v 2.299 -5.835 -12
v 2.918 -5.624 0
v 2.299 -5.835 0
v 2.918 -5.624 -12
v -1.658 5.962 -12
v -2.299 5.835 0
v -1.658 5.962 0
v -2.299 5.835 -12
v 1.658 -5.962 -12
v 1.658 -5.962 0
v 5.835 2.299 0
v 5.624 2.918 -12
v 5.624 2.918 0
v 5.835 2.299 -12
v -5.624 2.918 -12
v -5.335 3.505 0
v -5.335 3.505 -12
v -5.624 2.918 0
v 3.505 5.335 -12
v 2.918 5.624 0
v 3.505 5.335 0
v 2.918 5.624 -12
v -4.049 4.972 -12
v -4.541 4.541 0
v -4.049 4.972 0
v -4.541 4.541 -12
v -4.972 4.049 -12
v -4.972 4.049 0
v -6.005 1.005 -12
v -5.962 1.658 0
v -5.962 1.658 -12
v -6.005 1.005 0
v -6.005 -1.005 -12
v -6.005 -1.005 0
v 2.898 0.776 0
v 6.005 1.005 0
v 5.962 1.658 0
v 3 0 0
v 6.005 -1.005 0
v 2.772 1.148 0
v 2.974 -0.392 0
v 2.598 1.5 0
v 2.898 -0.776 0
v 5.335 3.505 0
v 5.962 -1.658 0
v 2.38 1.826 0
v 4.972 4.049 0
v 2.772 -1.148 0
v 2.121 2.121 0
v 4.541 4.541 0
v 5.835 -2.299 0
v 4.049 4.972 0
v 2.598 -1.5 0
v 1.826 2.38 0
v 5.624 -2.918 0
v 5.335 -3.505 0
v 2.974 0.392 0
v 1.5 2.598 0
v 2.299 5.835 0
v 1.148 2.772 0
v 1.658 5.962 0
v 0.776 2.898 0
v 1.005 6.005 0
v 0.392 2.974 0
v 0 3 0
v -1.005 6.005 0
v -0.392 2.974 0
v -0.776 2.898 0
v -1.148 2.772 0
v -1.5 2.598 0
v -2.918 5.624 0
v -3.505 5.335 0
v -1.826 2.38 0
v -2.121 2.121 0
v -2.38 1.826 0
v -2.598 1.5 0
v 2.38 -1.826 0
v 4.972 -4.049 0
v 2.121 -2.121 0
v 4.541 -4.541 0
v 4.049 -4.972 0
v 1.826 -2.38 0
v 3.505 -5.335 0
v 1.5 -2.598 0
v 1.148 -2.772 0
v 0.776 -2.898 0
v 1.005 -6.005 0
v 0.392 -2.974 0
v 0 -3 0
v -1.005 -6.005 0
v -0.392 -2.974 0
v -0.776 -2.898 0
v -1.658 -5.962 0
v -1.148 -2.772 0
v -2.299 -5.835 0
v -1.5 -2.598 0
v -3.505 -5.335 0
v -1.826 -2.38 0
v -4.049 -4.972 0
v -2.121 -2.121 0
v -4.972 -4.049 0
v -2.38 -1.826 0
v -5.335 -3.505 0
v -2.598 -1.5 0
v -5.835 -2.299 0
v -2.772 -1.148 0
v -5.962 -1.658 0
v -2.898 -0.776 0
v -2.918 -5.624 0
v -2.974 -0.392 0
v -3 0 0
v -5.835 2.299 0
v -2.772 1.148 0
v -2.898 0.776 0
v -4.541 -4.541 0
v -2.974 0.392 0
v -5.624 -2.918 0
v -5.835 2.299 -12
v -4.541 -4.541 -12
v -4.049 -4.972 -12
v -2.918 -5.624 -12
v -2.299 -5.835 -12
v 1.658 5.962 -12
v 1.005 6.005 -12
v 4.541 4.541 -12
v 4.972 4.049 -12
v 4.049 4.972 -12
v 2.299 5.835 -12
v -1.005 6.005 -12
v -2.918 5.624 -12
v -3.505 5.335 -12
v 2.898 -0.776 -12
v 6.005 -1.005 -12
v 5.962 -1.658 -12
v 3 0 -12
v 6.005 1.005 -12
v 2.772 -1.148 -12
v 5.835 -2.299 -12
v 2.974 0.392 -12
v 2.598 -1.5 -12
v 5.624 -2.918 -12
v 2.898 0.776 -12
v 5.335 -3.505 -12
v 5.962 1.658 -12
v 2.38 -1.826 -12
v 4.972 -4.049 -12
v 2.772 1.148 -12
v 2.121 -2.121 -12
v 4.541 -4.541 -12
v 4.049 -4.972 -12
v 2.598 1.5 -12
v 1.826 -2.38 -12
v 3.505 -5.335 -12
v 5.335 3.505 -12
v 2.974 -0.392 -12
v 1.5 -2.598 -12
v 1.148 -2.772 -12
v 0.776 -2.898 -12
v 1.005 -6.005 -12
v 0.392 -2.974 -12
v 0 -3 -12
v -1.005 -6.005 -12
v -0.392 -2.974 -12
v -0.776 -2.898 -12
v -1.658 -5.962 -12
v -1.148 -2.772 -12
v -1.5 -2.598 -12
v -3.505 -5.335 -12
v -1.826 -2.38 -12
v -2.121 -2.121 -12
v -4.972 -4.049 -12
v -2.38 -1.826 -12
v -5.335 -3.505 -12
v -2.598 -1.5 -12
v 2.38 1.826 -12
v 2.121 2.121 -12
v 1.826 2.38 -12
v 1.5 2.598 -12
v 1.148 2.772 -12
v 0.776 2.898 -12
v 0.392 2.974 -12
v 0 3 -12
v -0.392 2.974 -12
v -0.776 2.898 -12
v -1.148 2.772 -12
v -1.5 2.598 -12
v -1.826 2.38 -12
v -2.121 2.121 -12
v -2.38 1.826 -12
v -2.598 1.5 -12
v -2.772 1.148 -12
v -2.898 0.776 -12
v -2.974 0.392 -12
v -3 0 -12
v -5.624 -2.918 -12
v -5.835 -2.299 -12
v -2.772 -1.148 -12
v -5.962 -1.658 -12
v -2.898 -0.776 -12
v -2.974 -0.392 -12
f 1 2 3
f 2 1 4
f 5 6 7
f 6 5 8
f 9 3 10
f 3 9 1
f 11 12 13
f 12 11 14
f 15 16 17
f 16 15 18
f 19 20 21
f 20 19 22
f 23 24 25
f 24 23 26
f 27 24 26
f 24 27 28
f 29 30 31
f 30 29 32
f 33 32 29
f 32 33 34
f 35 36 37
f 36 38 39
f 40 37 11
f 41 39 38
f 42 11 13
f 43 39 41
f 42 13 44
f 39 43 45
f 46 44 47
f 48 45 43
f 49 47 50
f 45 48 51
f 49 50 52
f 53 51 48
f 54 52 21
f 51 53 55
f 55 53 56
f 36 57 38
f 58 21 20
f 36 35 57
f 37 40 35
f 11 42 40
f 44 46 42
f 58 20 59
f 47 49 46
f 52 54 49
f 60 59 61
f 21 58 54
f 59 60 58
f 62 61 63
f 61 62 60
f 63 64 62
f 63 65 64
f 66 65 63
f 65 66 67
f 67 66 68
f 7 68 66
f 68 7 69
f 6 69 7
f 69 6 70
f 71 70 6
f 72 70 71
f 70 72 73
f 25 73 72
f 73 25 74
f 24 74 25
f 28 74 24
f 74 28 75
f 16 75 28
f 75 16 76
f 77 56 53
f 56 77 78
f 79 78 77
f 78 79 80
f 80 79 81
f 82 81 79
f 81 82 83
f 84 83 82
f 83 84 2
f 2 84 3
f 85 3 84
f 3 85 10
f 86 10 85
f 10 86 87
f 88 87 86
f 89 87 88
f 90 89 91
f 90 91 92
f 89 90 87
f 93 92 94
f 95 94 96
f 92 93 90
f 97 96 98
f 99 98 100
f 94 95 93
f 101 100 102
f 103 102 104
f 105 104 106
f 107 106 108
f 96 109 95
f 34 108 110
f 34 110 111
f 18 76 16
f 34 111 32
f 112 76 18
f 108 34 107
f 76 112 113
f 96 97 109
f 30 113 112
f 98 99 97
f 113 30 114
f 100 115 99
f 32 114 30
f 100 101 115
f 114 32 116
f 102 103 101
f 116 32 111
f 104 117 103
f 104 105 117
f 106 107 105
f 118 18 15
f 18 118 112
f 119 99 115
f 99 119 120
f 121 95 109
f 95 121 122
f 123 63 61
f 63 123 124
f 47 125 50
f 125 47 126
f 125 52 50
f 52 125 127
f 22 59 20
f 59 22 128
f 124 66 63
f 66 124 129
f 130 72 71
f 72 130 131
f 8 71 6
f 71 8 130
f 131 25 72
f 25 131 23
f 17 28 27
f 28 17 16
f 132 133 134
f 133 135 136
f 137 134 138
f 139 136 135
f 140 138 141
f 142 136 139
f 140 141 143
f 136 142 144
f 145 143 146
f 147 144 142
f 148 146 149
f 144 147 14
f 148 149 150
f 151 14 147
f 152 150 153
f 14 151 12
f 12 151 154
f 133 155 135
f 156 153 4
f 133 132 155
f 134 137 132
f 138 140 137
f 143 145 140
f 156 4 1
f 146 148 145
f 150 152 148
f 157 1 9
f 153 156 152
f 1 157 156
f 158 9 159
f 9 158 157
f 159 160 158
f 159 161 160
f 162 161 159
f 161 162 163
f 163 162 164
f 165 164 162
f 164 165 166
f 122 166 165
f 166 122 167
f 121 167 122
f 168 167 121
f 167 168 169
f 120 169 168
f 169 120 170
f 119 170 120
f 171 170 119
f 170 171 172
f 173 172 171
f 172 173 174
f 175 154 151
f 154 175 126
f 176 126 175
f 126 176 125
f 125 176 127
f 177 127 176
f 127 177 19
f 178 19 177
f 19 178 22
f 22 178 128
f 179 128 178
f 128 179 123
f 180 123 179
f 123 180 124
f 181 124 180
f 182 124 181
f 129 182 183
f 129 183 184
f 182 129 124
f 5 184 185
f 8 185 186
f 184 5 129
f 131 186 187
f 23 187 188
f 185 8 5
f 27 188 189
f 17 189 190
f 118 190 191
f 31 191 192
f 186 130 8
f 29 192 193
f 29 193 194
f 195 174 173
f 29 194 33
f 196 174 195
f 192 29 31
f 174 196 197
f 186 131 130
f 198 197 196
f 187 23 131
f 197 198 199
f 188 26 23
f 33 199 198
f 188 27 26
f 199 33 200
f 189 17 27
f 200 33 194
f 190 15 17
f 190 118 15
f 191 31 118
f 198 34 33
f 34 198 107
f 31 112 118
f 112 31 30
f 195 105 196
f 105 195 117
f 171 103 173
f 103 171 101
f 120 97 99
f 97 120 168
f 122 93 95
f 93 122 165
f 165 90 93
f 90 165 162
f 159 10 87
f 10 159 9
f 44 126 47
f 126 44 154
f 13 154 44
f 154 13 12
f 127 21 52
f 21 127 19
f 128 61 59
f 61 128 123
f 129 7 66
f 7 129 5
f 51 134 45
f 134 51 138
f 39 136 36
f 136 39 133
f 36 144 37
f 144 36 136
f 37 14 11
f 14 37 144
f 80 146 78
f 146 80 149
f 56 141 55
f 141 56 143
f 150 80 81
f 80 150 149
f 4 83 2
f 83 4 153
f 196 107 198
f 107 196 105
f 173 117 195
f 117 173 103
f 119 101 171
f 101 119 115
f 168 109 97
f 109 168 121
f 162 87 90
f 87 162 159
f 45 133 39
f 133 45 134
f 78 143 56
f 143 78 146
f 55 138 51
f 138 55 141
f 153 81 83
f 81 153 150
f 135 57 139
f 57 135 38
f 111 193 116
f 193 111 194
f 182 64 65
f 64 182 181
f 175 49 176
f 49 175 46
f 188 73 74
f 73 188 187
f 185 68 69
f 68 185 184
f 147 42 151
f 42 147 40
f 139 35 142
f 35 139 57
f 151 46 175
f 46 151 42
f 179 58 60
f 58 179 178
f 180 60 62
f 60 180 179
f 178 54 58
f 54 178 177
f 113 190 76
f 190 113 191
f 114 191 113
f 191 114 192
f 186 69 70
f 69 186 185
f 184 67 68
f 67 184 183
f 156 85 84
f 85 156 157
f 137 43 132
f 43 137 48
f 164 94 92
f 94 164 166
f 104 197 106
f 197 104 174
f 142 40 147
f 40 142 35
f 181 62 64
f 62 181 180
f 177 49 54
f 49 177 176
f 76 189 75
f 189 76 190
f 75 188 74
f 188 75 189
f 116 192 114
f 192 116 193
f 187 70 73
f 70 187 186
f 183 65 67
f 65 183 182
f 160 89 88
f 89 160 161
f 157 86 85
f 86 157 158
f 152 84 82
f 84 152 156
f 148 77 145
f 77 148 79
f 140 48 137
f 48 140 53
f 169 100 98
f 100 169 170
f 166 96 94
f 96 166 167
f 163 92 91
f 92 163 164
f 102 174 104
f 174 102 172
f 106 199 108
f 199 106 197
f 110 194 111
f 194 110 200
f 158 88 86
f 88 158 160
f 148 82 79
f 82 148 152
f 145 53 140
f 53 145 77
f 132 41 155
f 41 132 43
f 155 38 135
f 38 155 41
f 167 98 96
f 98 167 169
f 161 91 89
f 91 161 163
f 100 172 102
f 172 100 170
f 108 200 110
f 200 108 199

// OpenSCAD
$fn = 48;


difference() {
	union() {
		translate(v = [0, 0, 0]) {
			difference() {
				union() {
					color(alpha = 1.0000000000, c = "Gold") {
						translate(v = [0, 0, 0]) {
							rotate(a = [0, 0, 0]) {
								translate(v = [0, 0, -12]) {
									linear_extrude(height = 12) {
										offset(r = 5) {
											square(center = true, size = [2.0100000000, 2.0100000000]);
										}
									}
								}
							}
						}
					}
				}
				union() {
					color(alpha = 1.0000000000, c = "Gold") {
						translate(v = [0.0000000000, 0.0000000000, 0]) {
							rotate(a = [0, 0, 0]) {
								translate(v = [0, 0, -250]) {
									cylinder(h = 500, r = 3.0000000000);
								}
							}
						}
					}
				}
			}
		}
	}
	union();
}
